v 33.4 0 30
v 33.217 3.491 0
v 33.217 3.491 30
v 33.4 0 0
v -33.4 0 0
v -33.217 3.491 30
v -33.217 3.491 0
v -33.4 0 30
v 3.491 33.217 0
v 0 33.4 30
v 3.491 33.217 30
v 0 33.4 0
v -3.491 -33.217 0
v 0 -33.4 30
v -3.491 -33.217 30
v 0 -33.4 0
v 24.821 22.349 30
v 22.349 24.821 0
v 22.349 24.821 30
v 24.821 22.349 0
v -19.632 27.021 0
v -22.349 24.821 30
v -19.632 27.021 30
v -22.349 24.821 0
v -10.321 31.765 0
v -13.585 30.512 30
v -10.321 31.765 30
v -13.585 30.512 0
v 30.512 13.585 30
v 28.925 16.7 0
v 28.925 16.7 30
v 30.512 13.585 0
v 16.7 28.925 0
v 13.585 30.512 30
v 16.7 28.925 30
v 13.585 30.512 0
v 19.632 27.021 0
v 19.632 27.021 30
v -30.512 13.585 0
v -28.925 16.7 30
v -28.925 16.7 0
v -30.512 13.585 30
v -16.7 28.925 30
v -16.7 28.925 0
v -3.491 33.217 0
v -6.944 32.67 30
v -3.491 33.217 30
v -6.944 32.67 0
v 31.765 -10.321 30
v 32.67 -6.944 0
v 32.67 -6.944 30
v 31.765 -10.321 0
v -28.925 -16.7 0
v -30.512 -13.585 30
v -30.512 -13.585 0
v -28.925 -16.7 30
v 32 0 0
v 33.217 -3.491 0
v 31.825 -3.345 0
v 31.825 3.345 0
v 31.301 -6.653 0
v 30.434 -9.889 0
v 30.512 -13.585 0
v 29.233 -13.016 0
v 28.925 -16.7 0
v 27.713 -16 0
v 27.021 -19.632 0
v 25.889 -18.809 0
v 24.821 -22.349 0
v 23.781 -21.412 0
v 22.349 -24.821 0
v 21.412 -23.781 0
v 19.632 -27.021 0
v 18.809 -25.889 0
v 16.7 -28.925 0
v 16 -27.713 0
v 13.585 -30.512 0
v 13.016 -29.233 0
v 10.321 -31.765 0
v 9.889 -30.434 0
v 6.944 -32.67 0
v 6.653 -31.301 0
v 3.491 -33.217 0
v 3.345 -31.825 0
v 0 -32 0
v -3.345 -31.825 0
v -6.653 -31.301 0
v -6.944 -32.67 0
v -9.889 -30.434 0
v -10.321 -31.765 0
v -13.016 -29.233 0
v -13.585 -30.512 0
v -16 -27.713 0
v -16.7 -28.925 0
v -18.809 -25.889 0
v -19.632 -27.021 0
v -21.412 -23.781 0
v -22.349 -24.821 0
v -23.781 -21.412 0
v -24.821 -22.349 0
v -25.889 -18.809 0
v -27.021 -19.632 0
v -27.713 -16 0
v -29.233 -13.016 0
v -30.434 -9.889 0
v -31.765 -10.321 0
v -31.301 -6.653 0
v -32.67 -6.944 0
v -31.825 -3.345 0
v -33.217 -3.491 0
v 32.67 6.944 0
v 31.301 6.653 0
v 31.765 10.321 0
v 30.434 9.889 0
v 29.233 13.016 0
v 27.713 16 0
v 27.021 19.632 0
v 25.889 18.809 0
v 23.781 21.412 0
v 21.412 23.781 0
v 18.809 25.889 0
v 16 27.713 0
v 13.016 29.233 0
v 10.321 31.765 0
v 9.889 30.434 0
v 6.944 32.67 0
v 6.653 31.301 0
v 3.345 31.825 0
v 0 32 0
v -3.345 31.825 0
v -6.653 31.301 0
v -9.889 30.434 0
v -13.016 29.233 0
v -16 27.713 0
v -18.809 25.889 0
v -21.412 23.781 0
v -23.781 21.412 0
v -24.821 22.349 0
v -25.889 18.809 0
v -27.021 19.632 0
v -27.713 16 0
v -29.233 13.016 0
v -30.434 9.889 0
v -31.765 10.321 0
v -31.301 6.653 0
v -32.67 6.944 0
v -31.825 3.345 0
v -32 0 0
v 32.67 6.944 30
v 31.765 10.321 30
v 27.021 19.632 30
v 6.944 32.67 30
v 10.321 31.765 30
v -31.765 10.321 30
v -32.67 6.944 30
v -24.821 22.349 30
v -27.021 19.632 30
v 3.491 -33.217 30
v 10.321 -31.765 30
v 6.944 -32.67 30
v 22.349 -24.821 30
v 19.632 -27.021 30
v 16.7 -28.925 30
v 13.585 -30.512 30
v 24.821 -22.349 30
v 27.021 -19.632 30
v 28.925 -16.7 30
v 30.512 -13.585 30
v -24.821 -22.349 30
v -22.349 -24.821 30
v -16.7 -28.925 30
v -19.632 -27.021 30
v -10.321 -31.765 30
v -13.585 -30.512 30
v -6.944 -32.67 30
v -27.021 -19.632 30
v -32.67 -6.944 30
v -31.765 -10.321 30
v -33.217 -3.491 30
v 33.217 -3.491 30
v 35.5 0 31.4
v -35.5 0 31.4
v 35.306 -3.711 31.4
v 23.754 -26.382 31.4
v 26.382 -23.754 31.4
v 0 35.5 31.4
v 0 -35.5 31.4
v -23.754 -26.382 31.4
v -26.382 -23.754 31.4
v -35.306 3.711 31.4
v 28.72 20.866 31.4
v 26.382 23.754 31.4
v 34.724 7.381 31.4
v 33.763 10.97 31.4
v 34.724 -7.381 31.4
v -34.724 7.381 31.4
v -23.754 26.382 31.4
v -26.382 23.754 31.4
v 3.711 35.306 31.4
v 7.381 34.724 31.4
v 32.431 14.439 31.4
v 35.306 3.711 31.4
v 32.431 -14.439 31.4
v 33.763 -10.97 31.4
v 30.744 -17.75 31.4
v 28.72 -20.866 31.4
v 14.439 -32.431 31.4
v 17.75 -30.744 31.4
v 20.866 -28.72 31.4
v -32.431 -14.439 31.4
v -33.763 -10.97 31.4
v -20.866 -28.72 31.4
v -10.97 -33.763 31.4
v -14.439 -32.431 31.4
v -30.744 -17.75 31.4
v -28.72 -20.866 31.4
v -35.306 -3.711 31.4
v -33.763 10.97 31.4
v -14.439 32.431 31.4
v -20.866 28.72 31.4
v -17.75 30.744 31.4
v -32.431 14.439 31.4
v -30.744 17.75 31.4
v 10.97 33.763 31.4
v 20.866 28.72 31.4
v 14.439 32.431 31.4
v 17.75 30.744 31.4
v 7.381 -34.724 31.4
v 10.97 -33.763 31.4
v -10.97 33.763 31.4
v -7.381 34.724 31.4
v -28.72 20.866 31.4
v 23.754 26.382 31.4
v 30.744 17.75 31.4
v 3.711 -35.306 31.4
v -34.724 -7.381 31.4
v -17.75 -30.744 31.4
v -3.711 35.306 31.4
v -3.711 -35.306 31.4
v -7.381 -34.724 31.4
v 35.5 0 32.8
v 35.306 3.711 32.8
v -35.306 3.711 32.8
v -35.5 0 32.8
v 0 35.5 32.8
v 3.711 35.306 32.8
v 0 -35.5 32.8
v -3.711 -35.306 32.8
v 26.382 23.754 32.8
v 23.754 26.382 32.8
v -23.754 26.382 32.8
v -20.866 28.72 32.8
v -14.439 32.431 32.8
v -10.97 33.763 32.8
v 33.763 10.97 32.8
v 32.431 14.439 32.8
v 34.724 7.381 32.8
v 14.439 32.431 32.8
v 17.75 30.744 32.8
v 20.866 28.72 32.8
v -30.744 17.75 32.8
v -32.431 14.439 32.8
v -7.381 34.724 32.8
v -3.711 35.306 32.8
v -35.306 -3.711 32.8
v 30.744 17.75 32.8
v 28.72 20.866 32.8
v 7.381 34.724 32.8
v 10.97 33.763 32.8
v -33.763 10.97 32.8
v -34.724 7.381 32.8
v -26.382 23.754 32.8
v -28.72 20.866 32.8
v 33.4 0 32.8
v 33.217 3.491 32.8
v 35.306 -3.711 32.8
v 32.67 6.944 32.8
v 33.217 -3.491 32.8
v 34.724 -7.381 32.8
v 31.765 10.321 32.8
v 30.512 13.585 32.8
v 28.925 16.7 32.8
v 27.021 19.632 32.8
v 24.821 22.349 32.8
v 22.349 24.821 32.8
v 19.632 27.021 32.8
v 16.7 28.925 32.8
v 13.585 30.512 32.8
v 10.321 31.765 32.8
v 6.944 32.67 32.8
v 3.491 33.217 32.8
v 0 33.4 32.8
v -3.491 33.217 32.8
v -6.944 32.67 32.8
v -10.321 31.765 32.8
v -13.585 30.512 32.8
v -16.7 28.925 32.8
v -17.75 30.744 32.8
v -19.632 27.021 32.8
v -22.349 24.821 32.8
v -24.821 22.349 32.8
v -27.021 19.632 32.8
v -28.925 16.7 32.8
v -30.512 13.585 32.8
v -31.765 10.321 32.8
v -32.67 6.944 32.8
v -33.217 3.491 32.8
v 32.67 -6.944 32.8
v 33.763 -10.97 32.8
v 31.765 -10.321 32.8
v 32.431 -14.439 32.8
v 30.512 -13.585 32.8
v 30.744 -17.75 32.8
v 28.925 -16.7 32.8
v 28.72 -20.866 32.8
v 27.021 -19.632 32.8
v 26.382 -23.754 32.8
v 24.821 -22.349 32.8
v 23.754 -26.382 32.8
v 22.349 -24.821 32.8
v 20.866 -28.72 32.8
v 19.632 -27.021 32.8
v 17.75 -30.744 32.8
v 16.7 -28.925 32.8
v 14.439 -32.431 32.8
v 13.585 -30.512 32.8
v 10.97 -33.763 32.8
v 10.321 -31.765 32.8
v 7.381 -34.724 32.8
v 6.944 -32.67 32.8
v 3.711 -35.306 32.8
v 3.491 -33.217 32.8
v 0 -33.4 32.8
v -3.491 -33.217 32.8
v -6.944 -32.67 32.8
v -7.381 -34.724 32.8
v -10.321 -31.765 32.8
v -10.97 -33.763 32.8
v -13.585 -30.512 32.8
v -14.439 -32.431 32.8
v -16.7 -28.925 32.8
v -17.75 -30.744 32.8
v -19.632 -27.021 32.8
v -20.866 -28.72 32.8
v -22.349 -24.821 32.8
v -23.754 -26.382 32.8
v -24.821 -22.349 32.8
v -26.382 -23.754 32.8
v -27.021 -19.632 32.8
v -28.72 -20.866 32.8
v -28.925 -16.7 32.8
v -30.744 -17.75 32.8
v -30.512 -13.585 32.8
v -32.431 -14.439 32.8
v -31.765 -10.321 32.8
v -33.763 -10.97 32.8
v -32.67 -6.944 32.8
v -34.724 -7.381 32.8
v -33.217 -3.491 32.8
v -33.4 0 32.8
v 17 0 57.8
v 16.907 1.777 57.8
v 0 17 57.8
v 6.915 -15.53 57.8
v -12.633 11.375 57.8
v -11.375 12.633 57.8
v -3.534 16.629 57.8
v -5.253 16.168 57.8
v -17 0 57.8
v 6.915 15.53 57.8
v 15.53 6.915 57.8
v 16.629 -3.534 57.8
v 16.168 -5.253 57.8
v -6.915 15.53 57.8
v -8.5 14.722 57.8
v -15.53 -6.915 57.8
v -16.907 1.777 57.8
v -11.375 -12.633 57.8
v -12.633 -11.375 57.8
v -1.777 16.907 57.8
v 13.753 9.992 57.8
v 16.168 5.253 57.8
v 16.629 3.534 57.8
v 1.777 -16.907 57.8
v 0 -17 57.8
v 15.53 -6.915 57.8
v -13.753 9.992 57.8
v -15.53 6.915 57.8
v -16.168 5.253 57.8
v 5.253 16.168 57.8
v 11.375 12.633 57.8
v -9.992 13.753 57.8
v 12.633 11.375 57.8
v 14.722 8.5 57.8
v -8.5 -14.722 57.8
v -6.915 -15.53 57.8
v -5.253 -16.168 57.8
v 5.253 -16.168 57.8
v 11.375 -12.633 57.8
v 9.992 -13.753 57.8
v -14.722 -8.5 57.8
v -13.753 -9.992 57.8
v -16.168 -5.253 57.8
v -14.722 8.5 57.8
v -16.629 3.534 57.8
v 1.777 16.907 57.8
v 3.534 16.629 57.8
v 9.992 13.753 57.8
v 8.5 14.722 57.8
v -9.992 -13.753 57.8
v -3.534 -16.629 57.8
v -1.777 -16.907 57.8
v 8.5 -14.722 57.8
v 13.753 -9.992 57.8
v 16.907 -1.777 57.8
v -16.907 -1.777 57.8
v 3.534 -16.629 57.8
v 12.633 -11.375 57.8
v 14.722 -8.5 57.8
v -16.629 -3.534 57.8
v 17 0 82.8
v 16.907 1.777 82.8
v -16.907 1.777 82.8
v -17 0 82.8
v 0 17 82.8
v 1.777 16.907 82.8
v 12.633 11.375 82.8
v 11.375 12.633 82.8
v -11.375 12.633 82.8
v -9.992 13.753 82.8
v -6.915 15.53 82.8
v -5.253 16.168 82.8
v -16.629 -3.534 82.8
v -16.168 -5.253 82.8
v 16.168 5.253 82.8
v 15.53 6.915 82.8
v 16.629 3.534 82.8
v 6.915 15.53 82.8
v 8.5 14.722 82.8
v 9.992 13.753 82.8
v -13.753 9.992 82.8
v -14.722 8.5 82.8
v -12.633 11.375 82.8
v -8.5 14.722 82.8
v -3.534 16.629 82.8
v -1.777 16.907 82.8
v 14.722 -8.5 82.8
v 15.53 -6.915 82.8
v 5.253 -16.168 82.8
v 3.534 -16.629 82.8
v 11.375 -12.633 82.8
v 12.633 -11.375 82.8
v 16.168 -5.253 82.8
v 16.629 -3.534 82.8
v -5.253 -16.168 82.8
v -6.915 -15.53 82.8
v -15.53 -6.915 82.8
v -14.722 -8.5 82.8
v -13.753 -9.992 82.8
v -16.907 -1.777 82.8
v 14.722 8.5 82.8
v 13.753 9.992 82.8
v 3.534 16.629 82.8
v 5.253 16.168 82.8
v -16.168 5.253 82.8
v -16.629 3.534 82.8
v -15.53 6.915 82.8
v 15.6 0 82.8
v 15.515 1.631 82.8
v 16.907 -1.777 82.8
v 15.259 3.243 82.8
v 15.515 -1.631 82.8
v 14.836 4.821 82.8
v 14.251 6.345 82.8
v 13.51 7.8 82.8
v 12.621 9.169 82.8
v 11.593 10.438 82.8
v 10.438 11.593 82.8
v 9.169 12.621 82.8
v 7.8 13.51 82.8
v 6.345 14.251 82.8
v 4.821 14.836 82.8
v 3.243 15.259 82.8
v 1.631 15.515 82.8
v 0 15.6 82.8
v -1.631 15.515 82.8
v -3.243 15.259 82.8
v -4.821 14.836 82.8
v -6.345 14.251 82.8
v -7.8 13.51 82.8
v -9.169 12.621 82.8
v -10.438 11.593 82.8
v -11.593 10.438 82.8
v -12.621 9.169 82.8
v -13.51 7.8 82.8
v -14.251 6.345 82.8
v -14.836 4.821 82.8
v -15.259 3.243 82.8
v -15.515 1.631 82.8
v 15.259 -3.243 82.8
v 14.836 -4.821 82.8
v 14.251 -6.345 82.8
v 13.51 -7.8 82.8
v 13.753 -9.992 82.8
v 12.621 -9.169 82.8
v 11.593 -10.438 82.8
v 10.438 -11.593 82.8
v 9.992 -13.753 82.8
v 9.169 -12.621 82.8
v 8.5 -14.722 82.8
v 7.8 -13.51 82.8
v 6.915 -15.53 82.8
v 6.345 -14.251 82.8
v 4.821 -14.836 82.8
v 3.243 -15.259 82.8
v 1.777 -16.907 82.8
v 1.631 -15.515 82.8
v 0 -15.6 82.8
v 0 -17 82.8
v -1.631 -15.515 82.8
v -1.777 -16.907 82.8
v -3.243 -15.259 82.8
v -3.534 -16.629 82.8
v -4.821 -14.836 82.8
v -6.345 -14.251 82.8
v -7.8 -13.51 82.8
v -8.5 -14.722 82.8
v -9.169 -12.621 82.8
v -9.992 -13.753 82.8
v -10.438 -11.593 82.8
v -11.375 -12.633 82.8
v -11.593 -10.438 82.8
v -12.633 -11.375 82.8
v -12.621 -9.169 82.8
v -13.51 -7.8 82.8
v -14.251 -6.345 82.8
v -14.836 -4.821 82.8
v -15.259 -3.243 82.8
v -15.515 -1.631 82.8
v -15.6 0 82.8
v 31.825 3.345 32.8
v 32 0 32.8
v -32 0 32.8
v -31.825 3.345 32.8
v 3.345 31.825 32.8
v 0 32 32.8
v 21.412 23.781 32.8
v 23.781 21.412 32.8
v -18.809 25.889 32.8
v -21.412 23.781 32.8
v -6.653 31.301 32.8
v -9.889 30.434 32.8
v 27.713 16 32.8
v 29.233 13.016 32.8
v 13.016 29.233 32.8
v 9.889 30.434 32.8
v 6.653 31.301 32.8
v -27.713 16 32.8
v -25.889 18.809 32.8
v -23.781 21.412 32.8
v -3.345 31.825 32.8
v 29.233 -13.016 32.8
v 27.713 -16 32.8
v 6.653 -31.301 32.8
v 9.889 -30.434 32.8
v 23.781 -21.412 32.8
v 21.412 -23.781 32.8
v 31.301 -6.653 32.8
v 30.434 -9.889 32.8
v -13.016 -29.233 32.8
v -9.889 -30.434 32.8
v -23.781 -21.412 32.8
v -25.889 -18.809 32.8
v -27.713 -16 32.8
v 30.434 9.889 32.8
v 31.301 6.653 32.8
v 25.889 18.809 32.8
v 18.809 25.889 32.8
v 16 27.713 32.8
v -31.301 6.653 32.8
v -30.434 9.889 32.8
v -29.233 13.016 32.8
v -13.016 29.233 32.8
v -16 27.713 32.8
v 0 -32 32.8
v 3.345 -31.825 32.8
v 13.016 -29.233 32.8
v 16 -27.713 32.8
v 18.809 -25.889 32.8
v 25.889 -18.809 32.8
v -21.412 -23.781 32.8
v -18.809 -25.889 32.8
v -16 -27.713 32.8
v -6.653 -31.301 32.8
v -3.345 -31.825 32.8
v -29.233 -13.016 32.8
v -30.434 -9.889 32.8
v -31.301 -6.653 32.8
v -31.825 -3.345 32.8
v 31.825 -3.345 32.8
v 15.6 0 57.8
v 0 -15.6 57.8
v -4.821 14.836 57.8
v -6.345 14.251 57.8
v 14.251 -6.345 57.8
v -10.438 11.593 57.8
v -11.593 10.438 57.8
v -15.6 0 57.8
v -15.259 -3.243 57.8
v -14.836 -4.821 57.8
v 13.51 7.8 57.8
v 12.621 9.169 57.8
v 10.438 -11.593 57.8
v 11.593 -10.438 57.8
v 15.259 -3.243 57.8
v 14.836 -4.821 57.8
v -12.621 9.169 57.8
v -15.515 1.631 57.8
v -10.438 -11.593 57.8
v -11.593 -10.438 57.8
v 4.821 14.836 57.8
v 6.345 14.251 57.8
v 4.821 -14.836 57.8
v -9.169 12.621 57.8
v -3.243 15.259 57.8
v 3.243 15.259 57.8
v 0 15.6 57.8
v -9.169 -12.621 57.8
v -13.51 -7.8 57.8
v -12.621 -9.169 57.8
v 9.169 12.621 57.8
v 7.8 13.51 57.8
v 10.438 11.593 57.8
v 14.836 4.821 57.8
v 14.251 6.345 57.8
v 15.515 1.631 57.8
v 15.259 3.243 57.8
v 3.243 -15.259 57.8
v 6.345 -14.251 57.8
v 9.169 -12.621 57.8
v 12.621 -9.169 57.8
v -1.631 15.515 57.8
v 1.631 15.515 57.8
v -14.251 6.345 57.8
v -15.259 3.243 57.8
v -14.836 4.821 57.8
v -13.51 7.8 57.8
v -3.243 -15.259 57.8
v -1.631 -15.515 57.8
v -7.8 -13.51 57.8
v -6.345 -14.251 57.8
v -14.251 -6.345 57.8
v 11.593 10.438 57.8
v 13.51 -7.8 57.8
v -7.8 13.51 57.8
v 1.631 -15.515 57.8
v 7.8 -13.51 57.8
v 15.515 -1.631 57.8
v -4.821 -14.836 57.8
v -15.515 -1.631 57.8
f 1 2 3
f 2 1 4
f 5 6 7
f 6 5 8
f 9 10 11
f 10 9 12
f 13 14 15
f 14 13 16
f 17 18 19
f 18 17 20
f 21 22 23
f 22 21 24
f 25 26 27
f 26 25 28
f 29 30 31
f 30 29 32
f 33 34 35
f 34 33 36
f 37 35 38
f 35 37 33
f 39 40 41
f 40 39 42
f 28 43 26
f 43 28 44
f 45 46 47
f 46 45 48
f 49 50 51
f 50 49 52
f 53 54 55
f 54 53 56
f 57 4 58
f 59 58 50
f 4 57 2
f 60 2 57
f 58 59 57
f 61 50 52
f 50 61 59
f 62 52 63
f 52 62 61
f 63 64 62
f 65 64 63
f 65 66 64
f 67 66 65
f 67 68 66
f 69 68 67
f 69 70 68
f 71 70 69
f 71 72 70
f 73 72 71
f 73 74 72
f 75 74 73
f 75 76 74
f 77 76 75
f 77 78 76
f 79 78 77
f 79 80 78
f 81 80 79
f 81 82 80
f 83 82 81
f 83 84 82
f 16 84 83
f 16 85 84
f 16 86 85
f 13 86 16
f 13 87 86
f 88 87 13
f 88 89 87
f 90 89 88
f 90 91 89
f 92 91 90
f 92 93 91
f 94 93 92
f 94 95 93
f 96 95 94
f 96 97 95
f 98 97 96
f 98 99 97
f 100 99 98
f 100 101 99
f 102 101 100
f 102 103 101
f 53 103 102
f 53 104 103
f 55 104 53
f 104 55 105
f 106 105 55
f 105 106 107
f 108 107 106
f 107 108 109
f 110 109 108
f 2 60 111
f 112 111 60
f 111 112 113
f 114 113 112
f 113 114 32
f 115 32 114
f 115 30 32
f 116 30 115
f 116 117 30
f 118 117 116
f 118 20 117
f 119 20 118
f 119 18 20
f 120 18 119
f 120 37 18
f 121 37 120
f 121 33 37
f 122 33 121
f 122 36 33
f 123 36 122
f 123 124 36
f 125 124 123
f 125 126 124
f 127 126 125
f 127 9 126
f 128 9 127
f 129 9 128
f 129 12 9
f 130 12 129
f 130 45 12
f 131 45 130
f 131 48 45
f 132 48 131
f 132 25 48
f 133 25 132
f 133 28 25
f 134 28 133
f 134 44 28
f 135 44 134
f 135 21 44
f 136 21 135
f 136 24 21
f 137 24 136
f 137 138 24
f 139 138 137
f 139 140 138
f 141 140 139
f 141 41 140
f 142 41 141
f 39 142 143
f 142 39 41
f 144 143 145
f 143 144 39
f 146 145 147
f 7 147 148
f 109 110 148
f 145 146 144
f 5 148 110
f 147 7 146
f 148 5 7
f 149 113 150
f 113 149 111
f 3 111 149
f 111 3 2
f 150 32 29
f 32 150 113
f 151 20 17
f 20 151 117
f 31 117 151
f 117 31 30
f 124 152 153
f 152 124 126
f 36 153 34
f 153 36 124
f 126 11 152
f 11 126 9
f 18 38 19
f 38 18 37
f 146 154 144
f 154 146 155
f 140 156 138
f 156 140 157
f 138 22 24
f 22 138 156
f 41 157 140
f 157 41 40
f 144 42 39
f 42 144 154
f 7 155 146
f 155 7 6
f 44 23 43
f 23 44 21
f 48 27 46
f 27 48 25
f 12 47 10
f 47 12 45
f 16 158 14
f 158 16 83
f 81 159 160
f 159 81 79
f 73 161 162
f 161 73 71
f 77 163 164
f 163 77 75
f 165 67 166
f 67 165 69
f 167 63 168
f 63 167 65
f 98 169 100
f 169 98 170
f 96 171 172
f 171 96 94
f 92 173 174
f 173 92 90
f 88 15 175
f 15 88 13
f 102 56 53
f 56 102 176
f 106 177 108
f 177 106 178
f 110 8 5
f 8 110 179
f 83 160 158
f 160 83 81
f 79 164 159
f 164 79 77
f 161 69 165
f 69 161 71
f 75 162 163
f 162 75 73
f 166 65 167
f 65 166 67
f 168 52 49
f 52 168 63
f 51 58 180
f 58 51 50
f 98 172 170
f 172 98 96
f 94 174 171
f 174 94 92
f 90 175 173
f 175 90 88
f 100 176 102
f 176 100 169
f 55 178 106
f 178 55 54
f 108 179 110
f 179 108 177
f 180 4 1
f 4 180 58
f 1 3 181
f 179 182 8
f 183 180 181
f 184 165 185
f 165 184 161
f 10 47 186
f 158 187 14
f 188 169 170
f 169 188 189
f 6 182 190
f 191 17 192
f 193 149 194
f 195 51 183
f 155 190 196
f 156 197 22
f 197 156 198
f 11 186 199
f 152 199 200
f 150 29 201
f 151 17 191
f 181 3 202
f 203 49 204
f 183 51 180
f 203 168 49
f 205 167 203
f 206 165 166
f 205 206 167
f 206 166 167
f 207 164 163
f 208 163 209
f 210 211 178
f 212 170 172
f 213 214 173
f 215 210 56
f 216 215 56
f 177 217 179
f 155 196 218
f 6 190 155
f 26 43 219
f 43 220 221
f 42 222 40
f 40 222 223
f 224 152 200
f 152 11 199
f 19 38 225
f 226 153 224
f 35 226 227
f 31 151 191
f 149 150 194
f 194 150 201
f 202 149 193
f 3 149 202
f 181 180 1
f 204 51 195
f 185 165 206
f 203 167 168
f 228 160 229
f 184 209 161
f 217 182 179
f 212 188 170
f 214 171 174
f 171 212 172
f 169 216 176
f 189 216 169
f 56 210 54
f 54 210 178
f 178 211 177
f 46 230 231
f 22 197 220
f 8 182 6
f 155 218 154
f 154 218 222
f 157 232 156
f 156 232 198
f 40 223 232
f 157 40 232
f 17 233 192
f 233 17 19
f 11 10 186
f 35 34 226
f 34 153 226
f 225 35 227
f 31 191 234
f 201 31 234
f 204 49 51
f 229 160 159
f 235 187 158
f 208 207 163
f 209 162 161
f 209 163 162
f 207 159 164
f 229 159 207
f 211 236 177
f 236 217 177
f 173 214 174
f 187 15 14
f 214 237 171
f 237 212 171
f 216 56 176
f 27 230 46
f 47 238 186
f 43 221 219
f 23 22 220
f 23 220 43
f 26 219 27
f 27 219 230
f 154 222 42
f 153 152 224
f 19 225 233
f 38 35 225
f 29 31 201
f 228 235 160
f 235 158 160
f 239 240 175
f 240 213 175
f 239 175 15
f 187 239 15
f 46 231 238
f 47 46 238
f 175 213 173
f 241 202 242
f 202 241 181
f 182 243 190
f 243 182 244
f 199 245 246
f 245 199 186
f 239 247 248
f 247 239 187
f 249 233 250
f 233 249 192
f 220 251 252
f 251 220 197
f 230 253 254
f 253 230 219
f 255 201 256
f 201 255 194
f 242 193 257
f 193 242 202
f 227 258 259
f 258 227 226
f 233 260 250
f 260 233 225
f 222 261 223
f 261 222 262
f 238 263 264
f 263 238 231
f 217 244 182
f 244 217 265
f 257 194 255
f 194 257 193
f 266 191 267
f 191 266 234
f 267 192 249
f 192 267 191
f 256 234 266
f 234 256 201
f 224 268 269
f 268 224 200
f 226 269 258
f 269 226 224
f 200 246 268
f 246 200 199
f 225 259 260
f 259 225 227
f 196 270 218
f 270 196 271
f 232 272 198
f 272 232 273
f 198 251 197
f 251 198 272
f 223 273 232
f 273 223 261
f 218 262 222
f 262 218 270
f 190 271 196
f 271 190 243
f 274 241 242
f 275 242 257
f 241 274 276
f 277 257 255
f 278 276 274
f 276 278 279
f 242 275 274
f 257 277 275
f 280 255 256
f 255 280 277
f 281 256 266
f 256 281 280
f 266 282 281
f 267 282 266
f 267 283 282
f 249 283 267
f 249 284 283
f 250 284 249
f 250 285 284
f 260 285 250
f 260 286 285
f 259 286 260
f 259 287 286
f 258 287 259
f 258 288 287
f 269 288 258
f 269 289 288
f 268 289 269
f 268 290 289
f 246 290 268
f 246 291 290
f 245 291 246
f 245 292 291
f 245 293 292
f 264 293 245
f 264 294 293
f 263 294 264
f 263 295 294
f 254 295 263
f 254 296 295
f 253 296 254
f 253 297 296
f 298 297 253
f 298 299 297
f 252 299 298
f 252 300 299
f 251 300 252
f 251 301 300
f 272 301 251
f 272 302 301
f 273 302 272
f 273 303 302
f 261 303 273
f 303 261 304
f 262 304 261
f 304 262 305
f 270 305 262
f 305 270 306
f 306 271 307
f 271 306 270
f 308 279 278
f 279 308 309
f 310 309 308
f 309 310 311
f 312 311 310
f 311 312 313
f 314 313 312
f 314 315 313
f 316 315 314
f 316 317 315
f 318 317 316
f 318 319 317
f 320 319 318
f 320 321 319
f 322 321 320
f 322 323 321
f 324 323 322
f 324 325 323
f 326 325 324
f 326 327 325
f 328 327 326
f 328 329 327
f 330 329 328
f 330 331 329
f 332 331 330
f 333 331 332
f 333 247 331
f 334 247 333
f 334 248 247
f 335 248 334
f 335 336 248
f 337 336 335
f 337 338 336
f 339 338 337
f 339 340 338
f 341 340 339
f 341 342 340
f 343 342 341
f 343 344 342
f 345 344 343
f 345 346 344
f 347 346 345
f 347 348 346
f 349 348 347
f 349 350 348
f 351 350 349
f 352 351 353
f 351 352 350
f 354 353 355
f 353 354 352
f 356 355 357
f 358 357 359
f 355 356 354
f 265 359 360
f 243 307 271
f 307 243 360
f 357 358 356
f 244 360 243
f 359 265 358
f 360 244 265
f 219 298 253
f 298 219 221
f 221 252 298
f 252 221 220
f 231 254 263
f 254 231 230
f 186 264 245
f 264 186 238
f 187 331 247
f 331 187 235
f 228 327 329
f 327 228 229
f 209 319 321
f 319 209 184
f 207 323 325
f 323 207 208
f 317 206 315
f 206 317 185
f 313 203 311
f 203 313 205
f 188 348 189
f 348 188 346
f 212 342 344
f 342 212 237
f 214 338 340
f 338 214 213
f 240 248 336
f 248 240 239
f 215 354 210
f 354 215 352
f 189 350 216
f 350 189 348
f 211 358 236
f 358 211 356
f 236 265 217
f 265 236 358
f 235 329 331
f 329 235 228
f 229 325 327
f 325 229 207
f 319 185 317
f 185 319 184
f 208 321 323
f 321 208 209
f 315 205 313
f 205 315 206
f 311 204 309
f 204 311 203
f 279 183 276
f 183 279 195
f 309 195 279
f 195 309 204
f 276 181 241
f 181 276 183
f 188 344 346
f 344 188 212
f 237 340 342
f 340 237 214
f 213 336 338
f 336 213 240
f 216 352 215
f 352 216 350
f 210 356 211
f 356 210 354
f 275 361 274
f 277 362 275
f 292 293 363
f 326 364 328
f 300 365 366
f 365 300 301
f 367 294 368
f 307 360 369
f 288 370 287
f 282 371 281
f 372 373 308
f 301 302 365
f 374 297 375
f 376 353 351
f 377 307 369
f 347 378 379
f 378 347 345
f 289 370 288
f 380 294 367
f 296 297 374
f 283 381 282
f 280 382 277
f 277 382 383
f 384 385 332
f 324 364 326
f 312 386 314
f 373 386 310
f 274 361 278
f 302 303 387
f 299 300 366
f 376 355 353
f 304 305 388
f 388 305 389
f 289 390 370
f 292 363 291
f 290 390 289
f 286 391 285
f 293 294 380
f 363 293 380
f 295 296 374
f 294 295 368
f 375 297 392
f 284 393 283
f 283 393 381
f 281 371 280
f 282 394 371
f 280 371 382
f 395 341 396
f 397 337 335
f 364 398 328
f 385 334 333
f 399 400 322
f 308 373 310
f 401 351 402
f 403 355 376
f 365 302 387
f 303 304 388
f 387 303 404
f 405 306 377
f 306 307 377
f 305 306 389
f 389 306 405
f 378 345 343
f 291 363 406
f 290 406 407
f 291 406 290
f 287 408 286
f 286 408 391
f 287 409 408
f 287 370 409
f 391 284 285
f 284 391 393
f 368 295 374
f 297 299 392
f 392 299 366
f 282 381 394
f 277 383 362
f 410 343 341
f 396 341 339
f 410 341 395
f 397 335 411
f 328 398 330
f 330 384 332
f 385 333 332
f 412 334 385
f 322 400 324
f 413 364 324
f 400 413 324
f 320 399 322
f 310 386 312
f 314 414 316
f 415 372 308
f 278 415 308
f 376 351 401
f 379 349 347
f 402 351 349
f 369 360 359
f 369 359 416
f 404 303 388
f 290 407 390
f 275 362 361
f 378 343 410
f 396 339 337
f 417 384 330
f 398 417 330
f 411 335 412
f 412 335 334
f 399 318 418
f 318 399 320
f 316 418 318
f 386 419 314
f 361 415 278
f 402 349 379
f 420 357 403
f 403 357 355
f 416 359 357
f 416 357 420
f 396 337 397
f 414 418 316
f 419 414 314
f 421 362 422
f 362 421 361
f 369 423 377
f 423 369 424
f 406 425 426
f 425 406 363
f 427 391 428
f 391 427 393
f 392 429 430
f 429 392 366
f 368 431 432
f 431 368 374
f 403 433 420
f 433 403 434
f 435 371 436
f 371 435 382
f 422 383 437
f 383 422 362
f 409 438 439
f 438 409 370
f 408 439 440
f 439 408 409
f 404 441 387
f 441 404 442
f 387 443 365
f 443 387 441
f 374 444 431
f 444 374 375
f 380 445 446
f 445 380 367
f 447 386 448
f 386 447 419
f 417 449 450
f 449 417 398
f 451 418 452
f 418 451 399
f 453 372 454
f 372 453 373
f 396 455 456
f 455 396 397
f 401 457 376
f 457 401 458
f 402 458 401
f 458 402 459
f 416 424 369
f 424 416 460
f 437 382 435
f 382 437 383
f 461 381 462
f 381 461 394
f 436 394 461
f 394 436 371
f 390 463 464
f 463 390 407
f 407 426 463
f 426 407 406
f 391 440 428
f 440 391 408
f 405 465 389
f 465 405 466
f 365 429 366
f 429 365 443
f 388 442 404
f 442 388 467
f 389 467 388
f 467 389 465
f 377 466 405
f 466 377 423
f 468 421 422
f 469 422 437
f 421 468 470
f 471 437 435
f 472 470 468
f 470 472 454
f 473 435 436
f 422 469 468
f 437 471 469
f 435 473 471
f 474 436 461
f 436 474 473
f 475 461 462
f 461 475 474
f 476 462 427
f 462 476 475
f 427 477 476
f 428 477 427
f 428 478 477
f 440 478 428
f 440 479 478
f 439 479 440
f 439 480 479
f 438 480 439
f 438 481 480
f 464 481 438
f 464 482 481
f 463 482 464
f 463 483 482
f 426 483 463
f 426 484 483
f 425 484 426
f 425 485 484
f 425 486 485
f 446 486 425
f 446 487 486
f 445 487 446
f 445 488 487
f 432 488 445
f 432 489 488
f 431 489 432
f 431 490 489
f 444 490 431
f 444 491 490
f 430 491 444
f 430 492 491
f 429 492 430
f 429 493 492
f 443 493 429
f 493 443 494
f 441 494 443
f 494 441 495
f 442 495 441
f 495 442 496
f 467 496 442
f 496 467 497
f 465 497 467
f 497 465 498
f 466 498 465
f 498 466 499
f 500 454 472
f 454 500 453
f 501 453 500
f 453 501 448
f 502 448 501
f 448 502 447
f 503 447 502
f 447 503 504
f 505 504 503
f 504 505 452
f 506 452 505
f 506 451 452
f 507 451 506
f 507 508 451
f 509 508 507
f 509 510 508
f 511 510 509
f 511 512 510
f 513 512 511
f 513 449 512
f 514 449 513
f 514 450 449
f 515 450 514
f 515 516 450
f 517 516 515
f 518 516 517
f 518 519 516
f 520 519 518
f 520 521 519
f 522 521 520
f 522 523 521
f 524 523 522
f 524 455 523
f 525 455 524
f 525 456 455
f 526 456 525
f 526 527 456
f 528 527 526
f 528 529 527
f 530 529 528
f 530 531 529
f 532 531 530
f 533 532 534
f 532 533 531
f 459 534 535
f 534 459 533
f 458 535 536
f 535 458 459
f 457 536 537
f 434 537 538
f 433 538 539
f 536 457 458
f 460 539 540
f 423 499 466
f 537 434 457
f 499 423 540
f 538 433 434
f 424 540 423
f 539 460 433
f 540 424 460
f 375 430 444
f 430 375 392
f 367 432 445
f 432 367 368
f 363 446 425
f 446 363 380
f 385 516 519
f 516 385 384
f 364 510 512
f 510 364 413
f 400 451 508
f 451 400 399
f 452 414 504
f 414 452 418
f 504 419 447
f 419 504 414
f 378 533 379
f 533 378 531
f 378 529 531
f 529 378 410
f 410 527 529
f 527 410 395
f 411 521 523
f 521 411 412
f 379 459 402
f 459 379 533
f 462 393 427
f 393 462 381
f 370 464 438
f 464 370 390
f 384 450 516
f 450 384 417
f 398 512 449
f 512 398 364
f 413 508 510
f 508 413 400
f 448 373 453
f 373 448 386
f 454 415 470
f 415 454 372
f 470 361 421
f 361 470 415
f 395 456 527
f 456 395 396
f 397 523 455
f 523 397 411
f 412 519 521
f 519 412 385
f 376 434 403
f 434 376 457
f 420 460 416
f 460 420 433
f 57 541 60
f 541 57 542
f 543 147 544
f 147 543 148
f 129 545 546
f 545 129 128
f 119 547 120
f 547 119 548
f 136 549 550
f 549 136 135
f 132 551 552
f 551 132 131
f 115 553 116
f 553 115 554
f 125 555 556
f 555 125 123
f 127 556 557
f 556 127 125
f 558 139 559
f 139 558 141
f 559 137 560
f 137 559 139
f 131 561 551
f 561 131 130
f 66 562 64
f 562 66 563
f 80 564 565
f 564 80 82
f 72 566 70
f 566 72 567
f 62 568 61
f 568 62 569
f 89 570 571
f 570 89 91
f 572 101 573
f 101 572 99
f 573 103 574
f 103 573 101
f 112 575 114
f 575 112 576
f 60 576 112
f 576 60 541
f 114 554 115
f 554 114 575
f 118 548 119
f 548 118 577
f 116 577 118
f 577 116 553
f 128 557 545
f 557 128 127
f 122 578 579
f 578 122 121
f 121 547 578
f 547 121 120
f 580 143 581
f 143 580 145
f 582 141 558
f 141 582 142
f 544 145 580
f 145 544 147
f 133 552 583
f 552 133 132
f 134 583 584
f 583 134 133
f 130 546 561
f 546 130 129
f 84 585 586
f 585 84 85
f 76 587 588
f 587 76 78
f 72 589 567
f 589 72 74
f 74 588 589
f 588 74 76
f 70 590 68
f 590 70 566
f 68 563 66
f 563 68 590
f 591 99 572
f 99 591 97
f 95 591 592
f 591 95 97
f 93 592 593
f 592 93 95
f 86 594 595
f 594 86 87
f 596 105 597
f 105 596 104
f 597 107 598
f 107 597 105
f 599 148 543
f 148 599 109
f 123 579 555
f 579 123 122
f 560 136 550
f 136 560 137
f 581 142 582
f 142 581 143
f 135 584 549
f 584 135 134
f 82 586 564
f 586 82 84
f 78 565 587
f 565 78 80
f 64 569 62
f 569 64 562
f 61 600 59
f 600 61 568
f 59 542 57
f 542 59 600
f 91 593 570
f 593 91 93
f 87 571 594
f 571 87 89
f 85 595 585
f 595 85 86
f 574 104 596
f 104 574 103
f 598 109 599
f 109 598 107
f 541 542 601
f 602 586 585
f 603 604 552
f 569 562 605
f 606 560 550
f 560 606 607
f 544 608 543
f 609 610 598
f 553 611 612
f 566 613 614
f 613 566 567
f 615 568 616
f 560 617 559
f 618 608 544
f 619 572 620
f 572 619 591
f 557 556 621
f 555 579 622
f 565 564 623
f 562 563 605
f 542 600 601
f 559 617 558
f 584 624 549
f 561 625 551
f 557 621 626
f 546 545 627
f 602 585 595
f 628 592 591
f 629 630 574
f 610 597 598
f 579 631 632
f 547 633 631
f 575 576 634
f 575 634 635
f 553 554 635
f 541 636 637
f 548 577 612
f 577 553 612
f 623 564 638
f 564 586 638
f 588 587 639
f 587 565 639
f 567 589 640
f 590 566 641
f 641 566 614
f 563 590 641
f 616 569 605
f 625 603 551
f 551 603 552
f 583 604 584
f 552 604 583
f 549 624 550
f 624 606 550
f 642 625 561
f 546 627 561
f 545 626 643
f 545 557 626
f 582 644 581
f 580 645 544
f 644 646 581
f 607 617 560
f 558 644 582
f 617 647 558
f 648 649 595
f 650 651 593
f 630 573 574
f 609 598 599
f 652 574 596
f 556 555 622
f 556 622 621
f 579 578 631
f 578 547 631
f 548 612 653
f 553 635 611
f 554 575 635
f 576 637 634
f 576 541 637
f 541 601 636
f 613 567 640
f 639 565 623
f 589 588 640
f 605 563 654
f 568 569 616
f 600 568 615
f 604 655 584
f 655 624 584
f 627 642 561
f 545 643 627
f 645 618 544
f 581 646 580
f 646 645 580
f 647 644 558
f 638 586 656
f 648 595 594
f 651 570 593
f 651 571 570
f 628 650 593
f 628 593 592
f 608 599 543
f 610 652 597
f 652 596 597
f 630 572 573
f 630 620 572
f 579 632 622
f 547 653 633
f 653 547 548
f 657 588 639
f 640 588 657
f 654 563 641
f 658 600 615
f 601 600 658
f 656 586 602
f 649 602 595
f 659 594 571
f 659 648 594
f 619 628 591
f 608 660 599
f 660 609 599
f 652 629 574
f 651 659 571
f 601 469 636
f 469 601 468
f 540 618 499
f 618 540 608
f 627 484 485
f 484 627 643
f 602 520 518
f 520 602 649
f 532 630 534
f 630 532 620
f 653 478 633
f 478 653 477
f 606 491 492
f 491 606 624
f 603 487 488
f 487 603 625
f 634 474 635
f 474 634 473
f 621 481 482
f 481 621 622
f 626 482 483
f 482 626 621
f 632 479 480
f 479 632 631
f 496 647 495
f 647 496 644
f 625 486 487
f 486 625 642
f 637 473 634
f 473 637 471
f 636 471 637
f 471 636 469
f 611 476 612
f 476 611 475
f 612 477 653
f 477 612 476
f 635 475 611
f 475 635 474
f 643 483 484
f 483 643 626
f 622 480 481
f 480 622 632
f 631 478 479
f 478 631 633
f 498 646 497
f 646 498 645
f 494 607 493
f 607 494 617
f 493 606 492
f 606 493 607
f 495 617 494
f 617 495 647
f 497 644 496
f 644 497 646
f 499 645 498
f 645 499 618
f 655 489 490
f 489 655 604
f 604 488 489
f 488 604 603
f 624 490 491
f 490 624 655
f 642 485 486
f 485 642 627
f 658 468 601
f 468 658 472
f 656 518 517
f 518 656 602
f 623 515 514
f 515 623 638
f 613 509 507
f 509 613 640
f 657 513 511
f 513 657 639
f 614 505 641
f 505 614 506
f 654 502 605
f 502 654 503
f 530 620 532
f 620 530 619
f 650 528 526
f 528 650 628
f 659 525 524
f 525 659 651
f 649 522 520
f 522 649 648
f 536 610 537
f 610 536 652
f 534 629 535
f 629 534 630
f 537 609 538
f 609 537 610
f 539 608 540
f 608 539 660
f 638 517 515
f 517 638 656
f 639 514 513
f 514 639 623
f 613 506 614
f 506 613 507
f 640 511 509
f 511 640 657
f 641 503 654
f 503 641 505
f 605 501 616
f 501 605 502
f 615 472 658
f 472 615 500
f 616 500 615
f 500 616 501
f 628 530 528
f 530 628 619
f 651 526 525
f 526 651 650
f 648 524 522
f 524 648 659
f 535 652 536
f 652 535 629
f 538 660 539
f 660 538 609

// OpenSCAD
//FollyMaker
//Vacuum Hose Adapter Beta 0.2 Testing
//Gather the parameters
/* [Parameters] */

//--Example is ShopVac Nominal 2.5" machine port to 1.5" accessory.  -- For the large end, is the measurement the adapter's outside or inside diameter?
LargeEndMeasured = "inside"; //[outside, inside]
//Diameter of Large End? (mm)
LargeEndDiameter = 64;
// Length of Large End? (mm)
LargeEndLength = 30;
//For the small end, is the measurement the adapter's outside or inside diameter?
SmallEndMeasured = "outside"; //[outside, inside]
//Diameter of Small End? (mm)
SmallEndDiameter = 34;
// Length of Small End? (mm)
SmallEndLength = 25;
// Length of Taper Section? (mm)
TaperLength = 25;
 // Create an Inside Stop at the lower end of smaller end of this adapter? (To keep the connected fitting from being sucked in.)
 InsideStop= "no"; //[no,yes]
 //What is the thickness of the adapter's walls?
 WallThickness = 1.4;
 
 $fn=60 *1;
 
     WT=WallThickness;
     LL=LargeEndLength;
     SL=SmallEndLength;
     TL=TaperLength;
     
     LD=  LargeEndMeasured =="inside" ? LargeEndDiameter + 2*WT : LargeEndDiameter;
     SD=  SmallEndMeasured =="inside" ? SmallEndDiameter + 2*WT : SmallEndDiameter;
     LID=  LargeEndMeasured =="inside" ? LD : LD - 2*WT;
     SID=  SmallEndMeasured =="inside" ? SD : SD - 2*WT;
     LID = LD - 2*WT;
     SID = SD - 2*WT;
     DR = LD + 3*WT;
     
 
module TransCylinder(D1, D2, H, Z)
    {
        translate([0, 0, Z])
        {
            cylinder(d1=D1, d2=D2, h=H, center=false);
        }
    }
   
difference()
{
      union()
        { 
            TransCylinder(LD, LD, LL, 0);
            TransCylinder(LD, DR, WT, LL);
            TransCylinder(DR, DR, WT, LL + WT);
            TransCylinder(LD, SD, TL, LL + 2*WT);
            TransCylinder(SD, SD, SL, LL + TL + 2*WT);
          } 
     union()
        {
            TransCylinder(LID, LID, LL, 0);
            TransCylinder(LID, LID, WT, LL);
            TransCylinder(LID, LID,  WT, LL + WT);
            TransCylinder(LID, SID, TL, LL + 2*WT);
            if (InsideStop=="yes")
                {
                TransCylinder(SID, SID-(2*WT), WT, LL +TL + 2*WT);
                TransCylinder(SID, SID, SL, LL +TL + 3*WT);
                    }
                else
                    {          
                    TransCylinder(SID, SID, SL, LL +TL + 2*WT);
                    }
        }
}   
